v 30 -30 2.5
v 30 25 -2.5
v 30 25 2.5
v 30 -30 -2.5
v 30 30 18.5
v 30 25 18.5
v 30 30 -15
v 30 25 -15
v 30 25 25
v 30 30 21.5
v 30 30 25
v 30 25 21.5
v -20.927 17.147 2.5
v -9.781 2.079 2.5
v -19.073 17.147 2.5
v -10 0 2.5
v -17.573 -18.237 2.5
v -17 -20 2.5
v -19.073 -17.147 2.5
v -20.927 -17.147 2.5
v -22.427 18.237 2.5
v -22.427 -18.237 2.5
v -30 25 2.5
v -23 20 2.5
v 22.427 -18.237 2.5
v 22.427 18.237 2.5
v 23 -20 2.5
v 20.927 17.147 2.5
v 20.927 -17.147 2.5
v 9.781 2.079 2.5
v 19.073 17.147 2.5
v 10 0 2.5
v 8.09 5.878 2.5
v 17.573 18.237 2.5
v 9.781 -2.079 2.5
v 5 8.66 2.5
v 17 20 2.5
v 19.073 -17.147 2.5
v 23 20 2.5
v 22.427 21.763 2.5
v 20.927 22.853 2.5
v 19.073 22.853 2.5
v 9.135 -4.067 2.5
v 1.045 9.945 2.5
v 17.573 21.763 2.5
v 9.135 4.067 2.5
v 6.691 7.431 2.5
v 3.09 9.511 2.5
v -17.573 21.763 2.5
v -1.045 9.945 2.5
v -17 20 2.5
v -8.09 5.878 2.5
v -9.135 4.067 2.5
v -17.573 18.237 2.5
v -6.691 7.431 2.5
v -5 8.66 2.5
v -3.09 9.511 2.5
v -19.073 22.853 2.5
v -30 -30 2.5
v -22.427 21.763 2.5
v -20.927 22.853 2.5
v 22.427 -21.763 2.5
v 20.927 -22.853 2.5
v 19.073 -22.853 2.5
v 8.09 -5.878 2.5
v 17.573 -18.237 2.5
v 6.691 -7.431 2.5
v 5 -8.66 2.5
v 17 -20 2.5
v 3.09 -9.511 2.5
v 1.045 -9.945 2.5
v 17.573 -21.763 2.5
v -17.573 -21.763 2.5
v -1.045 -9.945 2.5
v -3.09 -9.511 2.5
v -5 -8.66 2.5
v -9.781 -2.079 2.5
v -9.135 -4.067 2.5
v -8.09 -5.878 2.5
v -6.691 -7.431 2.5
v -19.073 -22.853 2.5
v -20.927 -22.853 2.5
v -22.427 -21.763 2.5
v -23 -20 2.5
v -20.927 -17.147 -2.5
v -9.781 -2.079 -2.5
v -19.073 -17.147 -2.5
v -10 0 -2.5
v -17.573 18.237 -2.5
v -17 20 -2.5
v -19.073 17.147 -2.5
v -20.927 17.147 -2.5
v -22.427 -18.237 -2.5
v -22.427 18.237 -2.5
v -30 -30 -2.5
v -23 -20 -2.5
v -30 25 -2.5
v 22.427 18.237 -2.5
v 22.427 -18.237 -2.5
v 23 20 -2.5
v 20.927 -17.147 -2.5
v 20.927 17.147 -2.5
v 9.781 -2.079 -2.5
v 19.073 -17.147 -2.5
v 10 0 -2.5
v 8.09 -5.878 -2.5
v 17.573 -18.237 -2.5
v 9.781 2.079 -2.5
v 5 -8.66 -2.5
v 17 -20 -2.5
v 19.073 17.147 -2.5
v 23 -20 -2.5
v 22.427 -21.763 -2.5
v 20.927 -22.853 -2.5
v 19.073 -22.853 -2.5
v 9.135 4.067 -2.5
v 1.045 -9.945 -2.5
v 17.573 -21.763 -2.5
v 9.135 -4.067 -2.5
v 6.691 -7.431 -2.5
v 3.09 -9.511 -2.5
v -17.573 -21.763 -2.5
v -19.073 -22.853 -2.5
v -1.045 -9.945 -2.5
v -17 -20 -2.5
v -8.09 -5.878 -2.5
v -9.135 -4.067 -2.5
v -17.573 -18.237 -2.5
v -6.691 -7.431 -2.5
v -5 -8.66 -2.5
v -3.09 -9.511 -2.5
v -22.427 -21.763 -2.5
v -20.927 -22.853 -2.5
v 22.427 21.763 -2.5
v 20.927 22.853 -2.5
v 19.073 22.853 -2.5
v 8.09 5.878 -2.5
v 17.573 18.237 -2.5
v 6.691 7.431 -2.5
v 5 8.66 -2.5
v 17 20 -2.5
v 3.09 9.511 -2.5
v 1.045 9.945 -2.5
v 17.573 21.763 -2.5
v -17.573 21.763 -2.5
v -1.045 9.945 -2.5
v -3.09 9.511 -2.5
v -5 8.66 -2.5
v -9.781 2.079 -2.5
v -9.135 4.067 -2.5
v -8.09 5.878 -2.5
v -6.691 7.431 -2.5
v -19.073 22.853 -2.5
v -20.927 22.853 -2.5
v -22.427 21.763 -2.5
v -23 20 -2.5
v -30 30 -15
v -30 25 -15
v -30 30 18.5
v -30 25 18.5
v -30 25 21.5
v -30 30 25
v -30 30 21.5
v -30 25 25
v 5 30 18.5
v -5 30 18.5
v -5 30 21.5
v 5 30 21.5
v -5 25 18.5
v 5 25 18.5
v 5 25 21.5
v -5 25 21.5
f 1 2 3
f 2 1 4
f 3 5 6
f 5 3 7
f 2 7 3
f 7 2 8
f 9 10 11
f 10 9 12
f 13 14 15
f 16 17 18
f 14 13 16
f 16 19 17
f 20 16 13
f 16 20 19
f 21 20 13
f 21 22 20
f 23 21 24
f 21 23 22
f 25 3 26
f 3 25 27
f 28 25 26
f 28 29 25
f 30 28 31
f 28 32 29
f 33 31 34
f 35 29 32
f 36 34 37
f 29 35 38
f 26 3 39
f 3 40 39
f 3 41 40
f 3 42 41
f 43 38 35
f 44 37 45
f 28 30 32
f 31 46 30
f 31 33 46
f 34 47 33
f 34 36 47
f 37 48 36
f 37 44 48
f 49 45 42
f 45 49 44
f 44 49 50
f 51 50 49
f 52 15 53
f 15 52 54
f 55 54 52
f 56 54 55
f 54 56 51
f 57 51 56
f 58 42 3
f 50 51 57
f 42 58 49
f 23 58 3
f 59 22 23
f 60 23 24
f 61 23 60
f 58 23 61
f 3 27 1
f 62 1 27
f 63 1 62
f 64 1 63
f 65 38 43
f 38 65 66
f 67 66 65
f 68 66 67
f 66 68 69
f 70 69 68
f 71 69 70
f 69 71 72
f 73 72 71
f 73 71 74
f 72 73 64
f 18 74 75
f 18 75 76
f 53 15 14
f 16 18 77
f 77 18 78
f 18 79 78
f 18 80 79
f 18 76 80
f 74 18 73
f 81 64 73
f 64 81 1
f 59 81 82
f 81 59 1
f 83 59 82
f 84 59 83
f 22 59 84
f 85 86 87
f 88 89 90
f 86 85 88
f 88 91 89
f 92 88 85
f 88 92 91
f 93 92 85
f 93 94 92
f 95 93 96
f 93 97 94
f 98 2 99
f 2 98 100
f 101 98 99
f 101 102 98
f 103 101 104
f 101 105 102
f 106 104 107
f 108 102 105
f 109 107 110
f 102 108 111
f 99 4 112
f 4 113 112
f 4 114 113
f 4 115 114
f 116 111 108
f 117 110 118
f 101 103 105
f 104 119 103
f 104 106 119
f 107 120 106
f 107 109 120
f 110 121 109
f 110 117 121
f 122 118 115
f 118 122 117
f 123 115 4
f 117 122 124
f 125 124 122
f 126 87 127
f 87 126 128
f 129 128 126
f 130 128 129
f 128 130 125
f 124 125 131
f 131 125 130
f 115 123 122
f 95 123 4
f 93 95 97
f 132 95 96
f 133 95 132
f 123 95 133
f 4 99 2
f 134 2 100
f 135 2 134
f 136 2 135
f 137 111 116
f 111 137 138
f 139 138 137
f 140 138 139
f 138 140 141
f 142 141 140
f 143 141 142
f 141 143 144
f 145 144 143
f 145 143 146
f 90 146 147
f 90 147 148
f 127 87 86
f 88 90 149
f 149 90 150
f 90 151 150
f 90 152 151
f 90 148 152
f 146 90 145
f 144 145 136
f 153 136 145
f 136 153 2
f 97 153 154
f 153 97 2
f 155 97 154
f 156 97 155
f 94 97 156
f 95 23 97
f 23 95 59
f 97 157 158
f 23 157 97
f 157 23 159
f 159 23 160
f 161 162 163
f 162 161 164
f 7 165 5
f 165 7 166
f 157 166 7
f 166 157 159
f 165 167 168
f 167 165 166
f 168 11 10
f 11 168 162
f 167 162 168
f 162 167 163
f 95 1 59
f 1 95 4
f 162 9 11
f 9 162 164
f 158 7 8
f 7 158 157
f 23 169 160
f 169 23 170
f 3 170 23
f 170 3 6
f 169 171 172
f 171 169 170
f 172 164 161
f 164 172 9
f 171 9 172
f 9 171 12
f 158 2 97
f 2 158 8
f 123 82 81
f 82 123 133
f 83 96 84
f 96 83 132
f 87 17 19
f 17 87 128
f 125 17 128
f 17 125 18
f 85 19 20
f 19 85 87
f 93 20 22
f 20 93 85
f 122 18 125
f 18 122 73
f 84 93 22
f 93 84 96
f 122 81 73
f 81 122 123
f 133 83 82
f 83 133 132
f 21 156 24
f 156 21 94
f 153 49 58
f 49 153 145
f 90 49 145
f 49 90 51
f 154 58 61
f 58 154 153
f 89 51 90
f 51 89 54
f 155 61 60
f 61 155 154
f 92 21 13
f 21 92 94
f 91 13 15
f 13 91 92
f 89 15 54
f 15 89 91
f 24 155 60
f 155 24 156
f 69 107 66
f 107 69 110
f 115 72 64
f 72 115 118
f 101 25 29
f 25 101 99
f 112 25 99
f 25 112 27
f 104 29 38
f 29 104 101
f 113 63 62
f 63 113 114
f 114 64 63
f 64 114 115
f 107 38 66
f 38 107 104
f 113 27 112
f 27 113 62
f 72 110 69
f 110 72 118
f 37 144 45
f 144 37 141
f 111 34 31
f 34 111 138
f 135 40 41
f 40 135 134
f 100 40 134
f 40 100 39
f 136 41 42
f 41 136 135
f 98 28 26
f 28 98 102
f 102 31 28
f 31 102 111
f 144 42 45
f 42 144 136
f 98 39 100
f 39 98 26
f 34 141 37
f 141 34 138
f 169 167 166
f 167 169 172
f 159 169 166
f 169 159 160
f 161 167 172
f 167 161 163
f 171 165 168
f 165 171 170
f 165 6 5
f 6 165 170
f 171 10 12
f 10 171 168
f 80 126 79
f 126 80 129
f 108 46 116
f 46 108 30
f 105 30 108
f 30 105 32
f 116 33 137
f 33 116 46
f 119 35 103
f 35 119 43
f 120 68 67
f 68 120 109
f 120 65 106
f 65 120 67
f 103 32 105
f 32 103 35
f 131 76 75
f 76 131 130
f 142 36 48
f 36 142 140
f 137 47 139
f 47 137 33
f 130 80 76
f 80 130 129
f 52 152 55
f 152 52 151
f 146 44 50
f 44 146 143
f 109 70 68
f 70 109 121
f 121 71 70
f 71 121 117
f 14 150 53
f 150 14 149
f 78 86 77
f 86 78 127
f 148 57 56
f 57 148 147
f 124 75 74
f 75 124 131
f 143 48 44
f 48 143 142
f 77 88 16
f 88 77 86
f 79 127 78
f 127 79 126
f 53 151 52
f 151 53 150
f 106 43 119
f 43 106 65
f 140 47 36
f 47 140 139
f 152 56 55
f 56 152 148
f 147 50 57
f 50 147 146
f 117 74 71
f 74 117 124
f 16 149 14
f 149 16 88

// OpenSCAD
// Main module to create the bracket
module bracket() {
    difference() {
        union() {
            // Base plate
            cube([60, 60, 5], center = true);
            
            // Vertical plate
            translate([0, 27.5, 5]) 
                cube([60, 5, 40], center = true);
        }
        
        // Center hole on the base plate
        translate([0, 0, 0])
            cylinder(h=10, r=10, center=true);

        // Screw holes
        for(x = [-20, 20])
            for(y = [-20, 20])
                translate([x, y, 0])
                    cylinder(h=10, r=3, center=true);
                    
        // Slots in the vertical plate
        for(x = [-20, 20])
            translate([x, 27.5, 20])
                rotate([90, 0, 0])
                    cube([30, 3, 5], center = true);
    }
}

// Call the main module
bracket();
